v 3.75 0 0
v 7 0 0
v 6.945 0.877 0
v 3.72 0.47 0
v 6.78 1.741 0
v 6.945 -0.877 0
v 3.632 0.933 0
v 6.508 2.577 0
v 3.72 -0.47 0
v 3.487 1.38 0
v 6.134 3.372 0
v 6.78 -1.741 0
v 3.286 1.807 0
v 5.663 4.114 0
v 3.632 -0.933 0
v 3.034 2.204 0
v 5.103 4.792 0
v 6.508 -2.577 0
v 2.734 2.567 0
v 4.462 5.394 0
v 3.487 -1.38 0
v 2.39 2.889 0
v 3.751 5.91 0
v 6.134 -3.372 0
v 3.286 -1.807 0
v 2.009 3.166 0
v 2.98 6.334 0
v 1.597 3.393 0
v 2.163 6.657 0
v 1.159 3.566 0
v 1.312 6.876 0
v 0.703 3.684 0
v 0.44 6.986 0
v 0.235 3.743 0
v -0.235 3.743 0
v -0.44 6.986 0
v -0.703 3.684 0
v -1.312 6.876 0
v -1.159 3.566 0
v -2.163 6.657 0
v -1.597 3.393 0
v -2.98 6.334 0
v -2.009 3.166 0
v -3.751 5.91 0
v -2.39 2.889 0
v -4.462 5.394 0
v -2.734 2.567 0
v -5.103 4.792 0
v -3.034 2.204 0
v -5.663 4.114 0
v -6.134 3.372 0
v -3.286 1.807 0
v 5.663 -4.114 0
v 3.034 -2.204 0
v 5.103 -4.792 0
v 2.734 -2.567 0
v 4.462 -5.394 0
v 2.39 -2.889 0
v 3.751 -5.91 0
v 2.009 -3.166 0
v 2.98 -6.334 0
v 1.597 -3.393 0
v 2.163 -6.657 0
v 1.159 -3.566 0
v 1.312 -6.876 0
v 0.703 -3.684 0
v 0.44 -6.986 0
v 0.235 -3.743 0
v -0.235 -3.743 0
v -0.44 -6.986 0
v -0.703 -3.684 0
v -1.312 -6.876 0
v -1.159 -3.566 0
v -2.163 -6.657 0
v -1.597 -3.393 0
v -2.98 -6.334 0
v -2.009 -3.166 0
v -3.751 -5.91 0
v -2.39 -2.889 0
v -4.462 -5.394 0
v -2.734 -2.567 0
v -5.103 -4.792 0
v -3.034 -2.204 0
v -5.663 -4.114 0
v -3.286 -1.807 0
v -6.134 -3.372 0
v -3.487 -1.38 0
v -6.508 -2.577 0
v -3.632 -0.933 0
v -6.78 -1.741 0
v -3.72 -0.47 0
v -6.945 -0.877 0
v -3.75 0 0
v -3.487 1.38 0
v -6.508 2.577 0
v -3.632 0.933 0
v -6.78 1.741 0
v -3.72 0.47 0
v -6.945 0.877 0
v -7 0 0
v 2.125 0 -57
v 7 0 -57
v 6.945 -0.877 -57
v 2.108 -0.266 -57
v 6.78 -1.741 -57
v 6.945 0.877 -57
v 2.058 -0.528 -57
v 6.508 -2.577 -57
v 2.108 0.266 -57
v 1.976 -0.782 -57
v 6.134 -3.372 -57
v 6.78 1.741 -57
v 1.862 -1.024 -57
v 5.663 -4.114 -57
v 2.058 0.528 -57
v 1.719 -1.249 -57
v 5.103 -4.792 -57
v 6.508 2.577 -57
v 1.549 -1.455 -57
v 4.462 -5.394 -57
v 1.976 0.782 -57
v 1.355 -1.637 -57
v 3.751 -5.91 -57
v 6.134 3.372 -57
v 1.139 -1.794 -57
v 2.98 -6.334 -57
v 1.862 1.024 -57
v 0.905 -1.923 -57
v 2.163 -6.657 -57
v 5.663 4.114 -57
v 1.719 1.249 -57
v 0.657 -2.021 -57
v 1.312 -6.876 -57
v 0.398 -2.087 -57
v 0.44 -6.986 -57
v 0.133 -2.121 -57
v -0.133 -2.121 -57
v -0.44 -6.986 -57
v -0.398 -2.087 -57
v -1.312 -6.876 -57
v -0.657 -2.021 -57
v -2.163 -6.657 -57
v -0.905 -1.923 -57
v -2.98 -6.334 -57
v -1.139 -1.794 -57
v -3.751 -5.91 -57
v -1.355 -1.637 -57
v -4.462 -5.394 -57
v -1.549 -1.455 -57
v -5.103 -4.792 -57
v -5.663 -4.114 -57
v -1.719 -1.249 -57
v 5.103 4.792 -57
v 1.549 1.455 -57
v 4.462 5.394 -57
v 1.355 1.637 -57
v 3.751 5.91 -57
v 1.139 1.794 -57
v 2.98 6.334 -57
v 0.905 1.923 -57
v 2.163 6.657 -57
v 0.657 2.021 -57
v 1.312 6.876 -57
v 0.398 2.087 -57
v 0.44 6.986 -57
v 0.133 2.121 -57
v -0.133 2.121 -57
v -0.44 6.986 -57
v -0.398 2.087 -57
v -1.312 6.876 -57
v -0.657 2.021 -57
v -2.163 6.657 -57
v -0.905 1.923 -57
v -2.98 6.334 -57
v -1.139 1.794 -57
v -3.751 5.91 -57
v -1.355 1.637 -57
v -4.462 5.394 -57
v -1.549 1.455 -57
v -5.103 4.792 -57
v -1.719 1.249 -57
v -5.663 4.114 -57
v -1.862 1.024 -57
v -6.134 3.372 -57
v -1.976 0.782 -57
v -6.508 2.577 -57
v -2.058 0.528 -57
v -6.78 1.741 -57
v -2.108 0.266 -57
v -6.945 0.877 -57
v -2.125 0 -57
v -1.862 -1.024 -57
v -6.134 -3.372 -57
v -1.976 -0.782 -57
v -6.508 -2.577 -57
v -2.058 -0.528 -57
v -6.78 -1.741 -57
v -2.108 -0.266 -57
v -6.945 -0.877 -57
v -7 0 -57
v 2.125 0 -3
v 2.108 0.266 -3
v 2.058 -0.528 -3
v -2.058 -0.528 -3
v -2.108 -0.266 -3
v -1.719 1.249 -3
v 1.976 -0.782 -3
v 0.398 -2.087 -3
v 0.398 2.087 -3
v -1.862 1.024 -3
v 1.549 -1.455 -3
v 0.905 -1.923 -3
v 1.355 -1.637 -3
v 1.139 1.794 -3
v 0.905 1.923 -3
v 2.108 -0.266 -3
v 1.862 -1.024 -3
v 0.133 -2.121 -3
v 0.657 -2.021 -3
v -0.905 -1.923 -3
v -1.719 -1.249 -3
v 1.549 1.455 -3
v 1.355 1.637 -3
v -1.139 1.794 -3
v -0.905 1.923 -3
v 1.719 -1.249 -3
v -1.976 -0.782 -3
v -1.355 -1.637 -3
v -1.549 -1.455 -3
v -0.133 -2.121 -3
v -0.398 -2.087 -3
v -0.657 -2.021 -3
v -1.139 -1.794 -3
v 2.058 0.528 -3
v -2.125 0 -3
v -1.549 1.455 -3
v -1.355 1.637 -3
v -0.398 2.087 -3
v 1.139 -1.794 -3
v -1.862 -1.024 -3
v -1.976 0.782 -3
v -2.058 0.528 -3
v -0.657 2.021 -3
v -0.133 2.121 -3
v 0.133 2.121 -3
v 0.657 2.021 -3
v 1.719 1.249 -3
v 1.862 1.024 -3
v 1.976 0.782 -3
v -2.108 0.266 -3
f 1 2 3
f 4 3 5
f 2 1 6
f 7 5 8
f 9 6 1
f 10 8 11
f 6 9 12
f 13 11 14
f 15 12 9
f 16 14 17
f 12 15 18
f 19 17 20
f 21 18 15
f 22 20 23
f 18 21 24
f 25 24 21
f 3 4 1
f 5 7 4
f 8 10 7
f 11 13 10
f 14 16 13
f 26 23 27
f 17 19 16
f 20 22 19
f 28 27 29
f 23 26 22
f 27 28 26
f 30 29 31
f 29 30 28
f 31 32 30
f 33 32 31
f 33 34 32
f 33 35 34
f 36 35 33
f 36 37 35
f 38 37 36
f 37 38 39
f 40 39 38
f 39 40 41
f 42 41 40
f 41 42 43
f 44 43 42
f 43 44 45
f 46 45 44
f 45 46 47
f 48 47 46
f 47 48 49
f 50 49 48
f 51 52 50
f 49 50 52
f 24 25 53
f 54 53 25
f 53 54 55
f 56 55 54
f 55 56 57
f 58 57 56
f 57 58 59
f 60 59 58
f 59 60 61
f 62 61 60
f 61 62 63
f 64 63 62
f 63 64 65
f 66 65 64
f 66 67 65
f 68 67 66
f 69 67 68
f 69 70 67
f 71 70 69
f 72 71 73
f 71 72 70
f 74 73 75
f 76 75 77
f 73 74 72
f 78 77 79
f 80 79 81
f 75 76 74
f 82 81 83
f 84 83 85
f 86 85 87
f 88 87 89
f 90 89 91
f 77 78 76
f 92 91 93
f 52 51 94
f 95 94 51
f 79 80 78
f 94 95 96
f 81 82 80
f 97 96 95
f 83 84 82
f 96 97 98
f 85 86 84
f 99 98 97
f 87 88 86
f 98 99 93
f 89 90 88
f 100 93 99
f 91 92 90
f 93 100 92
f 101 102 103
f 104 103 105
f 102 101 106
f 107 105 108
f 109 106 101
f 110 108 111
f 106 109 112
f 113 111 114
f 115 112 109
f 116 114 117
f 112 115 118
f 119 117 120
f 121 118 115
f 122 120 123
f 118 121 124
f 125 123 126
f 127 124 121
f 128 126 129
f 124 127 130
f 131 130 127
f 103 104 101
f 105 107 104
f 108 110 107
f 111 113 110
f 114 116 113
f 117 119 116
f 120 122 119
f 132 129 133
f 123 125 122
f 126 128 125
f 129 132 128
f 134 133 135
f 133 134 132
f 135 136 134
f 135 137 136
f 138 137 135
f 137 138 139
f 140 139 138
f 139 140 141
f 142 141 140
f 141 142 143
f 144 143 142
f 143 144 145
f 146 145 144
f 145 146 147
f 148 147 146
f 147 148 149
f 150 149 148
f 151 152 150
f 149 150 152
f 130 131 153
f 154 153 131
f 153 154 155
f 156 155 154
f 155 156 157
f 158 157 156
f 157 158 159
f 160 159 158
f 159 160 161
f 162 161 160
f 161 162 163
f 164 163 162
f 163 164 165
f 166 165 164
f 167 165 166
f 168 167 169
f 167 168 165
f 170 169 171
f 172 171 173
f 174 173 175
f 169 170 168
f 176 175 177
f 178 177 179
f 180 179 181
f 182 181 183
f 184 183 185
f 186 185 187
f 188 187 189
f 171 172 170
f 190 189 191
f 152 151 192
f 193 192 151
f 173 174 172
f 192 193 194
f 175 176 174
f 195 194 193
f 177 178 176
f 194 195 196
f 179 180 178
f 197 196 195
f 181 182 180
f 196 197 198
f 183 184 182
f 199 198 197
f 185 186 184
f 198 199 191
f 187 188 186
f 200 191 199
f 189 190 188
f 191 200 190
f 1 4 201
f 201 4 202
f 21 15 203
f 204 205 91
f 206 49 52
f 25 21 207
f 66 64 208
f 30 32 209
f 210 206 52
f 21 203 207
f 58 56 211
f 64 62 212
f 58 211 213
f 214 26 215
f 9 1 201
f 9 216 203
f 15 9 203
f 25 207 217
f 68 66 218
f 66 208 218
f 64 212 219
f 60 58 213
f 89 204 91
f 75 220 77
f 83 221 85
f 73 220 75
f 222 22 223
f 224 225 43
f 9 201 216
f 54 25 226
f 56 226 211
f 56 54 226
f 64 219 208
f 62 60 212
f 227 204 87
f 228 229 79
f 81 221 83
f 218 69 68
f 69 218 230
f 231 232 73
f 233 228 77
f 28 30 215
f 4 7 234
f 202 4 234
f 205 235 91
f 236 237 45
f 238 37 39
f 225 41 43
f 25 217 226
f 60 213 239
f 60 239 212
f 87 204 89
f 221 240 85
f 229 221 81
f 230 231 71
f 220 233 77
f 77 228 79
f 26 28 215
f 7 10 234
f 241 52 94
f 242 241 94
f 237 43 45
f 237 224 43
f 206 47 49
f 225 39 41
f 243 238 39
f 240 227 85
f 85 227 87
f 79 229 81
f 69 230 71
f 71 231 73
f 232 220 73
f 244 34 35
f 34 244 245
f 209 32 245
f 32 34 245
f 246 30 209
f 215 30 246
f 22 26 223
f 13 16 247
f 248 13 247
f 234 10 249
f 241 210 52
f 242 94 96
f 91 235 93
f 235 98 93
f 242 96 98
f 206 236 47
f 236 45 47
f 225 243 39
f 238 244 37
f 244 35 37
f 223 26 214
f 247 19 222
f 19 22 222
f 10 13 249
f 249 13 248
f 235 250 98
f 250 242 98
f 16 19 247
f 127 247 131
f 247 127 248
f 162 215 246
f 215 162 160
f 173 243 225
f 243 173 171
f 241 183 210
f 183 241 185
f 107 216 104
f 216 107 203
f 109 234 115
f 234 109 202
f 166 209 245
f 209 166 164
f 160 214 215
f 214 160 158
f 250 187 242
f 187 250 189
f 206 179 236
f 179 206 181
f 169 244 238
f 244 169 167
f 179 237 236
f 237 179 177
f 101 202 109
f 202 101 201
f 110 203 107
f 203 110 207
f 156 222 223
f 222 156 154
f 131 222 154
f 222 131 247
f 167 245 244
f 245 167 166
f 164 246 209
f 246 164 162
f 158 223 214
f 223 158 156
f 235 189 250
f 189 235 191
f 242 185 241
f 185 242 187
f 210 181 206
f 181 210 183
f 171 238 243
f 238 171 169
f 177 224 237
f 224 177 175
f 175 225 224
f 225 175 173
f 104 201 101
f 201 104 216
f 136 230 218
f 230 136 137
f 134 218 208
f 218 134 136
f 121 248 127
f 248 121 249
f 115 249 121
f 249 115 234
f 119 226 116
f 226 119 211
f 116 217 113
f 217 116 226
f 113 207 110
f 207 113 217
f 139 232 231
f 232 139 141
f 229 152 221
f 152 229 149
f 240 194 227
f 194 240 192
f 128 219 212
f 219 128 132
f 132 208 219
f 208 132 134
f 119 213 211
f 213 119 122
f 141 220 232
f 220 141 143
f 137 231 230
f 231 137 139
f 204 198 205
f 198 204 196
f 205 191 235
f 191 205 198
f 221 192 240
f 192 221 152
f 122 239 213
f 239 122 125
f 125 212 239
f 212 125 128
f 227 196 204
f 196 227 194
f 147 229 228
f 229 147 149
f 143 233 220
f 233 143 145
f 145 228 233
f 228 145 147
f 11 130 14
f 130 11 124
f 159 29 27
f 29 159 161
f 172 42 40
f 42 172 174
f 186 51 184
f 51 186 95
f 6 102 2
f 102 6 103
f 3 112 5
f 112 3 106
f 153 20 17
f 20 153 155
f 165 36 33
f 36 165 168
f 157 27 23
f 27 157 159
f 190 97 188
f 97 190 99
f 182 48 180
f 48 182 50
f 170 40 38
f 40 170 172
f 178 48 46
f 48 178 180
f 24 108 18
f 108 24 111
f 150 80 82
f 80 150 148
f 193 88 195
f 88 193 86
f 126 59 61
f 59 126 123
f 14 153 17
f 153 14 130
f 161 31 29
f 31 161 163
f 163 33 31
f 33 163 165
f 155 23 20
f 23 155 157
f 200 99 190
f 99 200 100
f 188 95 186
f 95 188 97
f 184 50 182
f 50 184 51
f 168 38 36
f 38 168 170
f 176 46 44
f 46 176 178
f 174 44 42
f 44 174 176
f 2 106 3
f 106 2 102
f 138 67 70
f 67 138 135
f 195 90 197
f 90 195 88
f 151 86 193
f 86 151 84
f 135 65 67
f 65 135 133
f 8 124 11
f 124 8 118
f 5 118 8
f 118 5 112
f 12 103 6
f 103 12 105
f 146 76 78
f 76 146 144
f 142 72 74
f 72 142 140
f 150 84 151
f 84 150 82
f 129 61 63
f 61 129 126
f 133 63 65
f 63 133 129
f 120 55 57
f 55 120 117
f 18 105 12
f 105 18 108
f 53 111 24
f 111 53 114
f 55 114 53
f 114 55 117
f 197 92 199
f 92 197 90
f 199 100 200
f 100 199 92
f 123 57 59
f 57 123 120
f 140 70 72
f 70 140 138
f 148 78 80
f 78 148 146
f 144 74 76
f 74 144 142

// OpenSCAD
$fn = 50;


difference() {
	union() {
		translate(v = [0, 0, -57.0000000000]) {
			cylinder(h = 57, r = 7.0000000000);
		}
	}
	union() {
		translate(v = [0, 0, 0]) {
			rotate(a = [0, 0, 0]) {
				difference() {
					union() {
						#translate(v = [0, 0, -57.0000000000]) {
							cylinder(h = 57, r = 2.0000000000);
						}
						#translate(v = [0, 0, -3]) {
							cylinder(h = 3, r = 7.0000000000, r1 = 2.1250000000, r2 = 3.7500000000);
						}
						#translate(v = [0, 0, -57.0000000000]) {
							cylinder(h = 57, r = 2.1250000000);
						}
						#translate(v = [0, 0, -57.0000000000]) {
							cylinder(h = 57, r = 2.0000000000);
						}
					}
					union();
				}
			}
		}
	}
}
